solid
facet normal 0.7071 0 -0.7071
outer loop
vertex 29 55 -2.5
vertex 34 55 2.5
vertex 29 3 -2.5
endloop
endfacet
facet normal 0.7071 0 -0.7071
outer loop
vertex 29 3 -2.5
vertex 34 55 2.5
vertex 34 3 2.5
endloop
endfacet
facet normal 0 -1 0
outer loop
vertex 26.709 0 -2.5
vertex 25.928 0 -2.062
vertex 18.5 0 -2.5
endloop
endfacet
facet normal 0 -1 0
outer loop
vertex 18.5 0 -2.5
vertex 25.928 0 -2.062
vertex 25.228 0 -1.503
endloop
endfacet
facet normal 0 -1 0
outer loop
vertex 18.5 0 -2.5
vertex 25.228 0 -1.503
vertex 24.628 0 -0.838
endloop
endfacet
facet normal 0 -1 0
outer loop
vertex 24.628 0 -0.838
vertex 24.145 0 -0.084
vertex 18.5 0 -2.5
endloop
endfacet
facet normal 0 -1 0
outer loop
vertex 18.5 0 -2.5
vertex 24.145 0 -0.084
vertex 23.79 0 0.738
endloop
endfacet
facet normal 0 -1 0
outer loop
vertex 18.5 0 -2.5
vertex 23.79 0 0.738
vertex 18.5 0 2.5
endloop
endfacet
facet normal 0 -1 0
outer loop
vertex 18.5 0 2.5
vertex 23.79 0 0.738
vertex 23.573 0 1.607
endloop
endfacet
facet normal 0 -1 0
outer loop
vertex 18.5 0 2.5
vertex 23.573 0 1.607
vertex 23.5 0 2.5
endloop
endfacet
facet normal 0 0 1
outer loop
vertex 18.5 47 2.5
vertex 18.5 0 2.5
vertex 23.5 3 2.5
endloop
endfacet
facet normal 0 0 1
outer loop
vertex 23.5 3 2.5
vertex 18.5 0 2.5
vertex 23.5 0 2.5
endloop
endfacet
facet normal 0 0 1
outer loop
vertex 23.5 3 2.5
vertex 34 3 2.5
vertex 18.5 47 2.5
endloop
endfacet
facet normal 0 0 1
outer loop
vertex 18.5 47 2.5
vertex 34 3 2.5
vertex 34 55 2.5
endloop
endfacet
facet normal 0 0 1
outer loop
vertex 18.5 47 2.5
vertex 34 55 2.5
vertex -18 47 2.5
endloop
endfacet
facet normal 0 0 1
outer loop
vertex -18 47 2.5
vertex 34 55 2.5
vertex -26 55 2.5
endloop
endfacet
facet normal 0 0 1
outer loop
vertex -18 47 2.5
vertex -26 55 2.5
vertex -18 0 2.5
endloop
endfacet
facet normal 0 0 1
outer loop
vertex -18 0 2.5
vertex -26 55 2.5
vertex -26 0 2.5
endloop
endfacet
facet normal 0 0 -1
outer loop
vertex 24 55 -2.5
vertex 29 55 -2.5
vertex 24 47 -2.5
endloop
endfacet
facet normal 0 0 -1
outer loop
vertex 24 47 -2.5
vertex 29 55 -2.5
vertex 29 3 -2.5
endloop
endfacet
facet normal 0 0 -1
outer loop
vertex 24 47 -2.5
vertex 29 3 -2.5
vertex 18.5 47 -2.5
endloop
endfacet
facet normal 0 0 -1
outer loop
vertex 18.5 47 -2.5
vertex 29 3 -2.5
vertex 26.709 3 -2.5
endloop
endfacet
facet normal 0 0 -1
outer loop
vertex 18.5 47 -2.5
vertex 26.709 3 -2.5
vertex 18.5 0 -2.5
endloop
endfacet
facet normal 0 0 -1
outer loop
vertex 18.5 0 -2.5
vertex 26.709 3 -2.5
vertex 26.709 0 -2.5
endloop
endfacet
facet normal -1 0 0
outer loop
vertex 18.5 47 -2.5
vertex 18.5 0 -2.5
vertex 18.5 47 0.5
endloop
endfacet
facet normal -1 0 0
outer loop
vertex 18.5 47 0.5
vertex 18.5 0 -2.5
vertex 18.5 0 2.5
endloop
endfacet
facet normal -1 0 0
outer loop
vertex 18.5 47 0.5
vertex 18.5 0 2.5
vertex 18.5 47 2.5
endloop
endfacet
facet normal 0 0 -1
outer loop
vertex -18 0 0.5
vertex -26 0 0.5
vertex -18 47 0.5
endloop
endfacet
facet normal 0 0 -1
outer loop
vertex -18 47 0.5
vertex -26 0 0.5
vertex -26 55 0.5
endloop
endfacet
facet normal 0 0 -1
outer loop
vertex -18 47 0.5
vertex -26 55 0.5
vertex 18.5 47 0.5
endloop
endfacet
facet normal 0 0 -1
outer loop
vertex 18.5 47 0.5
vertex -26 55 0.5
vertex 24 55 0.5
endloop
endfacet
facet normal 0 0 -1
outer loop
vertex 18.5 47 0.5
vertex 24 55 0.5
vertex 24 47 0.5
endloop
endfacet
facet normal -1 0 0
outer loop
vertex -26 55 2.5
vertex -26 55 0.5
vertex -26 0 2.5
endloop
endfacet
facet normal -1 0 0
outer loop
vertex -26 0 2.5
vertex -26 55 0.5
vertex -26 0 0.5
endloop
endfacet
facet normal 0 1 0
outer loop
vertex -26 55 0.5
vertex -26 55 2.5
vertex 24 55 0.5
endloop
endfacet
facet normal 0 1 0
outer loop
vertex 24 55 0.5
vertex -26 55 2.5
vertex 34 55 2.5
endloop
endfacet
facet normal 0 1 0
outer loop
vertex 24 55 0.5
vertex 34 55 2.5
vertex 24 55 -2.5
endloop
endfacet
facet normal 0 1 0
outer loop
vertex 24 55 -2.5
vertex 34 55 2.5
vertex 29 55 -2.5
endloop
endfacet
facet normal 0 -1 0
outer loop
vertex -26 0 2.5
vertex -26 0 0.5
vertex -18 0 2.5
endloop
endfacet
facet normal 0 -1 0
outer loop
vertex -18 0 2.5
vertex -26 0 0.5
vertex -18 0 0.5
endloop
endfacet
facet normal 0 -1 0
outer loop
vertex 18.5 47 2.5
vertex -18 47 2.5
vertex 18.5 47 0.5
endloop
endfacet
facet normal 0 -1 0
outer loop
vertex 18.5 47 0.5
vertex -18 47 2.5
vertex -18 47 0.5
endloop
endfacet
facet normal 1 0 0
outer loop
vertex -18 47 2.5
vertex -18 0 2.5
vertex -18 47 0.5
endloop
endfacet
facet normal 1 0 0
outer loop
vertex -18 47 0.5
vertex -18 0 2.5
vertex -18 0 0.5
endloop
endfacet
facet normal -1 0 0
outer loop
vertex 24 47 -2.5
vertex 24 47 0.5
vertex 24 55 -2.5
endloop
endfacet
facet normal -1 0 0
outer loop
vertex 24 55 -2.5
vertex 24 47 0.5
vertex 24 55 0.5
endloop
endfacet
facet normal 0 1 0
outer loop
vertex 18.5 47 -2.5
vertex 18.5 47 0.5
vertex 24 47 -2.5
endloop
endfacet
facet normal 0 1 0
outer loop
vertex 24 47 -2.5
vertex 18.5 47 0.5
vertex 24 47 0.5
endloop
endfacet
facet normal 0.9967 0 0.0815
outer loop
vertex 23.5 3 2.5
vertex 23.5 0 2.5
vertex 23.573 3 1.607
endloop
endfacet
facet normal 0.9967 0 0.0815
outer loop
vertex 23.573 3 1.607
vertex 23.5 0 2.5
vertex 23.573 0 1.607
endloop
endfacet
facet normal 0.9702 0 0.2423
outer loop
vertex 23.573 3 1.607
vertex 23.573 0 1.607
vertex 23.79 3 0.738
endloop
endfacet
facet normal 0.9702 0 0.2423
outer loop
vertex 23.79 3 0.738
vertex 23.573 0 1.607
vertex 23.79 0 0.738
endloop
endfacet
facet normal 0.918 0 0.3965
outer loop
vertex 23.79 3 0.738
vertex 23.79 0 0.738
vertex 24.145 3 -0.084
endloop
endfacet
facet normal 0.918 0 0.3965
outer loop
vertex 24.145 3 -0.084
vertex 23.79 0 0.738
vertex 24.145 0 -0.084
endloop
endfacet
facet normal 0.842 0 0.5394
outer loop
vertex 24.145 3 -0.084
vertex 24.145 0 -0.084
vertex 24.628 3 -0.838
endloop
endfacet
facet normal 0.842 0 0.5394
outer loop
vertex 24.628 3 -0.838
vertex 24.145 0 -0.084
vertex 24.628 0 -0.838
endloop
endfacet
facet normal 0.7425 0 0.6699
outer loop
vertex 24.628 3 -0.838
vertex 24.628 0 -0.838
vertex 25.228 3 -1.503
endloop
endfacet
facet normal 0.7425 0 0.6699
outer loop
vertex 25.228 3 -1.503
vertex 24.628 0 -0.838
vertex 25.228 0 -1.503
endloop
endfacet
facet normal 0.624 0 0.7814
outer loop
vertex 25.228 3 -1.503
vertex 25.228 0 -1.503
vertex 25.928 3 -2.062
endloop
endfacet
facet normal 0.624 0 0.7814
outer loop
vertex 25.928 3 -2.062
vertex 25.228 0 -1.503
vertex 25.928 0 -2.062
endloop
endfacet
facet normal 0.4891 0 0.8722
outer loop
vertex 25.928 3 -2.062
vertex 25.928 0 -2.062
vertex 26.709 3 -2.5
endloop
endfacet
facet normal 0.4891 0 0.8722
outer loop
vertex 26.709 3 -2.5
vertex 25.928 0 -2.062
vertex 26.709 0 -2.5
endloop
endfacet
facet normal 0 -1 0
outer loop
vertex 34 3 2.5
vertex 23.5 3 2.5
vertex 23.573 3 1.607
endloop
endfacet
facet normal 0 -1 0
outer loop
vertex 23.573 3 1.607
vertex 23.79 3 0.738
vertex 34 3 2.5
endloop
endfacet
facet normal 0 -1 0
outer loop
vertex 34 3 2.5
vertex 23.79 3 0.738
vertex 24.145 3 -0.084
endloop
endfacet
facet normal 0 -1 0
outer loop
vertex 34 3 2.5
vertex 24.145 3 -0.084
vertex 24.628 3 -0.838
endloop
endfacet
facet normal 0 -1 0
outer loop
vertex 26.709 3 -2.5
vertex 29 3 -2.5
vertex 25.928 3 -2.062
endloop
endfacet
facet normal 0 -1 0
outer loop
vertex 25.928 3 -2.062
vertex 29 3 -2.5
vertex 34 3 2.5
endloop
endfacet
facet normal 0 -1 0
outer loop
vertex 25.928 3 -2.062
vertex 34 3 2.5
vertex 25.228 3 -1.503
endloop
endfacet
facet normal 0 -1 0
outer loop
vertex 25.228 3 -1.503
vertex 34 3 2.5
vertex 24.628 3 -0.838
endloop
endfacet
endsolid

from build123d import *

# Parameters (mm, degrees)
BOSS_EXTRU_1_DEPTH      = 55
ESQUISSE2_W             = 36.5
ESQUISSE2_H             = 47
ENL_V_MAT_EXTRU_1_DEPTH = 65.730209331
ESQUISSE3_W             = 5.5
ESQUISSE3_H             = 8
ENL_V_MAT_EXTRU_2_DEPTH = 3
ESQUISSE4_R             = 5.5
ENL_V_MAT_EXTRU_3_DEPTH = 3


with BuildPart() as part:
    # Esquisse1 → Boss.-Extru.1 (new body)
    with BuildSketch(Plane(origin=(0, 0, 0), x_dir=(1, 0, 0), z_dir=(0, 1, 0))):
        Polygon((34, -2.5), (29, 2.5), (18.5, 2.5), (18.5, -0.5), (-26, -0.5), (-26, -2.5), align=None)
    extrude(amount=BOSS_EXTRU_1_DEPTH)

    # Esquisse2 → Enlèv. mat.-Extru.1 (cut, through all)
    with BuildSketch(Plane(origin=(0, 0, 0.5), x_dir=(-1, 0, 0), z_dir=(0, 0, -1))):
        with Locations((-0.25, 23.5)):
            Rectangle(ESQUISSE2_W, ESQUISSE2_H)
    extrude(amount=-ENL_V_MAT_EXTRU_1_DEPTH, mode=Mode.SUBTRACT)

    # Esquisse3 → Enlèv. mat.-Extru.2 (cut)
    with BuildSketch(Plane(origin=(0, 0, -2.5), x_dir=(-1, 0, 0), z_dir=(0, 0, -1))):
        with Locations((-21.25, 51)):
            Rectangle(ESQUISSE3_W, ESQUISSE3_H)
    extrude(amount=-ENL_V_MAT_EXTRU_2_DEPTH, mode=Mode.SUBTRACT)

    # Esquisse4 → Enlèv. mat.-Extru.3 (cut)
    with BuildSketch(Plane.XZ):
        with Locations((29, 2.5)):
            Circle(ESQUISSE4_R)
    extrude(amount=-ENL_V_MAT_EXTRU_3_DEPTH, mode=Mode.SUBTRACT)


solid = part.part
